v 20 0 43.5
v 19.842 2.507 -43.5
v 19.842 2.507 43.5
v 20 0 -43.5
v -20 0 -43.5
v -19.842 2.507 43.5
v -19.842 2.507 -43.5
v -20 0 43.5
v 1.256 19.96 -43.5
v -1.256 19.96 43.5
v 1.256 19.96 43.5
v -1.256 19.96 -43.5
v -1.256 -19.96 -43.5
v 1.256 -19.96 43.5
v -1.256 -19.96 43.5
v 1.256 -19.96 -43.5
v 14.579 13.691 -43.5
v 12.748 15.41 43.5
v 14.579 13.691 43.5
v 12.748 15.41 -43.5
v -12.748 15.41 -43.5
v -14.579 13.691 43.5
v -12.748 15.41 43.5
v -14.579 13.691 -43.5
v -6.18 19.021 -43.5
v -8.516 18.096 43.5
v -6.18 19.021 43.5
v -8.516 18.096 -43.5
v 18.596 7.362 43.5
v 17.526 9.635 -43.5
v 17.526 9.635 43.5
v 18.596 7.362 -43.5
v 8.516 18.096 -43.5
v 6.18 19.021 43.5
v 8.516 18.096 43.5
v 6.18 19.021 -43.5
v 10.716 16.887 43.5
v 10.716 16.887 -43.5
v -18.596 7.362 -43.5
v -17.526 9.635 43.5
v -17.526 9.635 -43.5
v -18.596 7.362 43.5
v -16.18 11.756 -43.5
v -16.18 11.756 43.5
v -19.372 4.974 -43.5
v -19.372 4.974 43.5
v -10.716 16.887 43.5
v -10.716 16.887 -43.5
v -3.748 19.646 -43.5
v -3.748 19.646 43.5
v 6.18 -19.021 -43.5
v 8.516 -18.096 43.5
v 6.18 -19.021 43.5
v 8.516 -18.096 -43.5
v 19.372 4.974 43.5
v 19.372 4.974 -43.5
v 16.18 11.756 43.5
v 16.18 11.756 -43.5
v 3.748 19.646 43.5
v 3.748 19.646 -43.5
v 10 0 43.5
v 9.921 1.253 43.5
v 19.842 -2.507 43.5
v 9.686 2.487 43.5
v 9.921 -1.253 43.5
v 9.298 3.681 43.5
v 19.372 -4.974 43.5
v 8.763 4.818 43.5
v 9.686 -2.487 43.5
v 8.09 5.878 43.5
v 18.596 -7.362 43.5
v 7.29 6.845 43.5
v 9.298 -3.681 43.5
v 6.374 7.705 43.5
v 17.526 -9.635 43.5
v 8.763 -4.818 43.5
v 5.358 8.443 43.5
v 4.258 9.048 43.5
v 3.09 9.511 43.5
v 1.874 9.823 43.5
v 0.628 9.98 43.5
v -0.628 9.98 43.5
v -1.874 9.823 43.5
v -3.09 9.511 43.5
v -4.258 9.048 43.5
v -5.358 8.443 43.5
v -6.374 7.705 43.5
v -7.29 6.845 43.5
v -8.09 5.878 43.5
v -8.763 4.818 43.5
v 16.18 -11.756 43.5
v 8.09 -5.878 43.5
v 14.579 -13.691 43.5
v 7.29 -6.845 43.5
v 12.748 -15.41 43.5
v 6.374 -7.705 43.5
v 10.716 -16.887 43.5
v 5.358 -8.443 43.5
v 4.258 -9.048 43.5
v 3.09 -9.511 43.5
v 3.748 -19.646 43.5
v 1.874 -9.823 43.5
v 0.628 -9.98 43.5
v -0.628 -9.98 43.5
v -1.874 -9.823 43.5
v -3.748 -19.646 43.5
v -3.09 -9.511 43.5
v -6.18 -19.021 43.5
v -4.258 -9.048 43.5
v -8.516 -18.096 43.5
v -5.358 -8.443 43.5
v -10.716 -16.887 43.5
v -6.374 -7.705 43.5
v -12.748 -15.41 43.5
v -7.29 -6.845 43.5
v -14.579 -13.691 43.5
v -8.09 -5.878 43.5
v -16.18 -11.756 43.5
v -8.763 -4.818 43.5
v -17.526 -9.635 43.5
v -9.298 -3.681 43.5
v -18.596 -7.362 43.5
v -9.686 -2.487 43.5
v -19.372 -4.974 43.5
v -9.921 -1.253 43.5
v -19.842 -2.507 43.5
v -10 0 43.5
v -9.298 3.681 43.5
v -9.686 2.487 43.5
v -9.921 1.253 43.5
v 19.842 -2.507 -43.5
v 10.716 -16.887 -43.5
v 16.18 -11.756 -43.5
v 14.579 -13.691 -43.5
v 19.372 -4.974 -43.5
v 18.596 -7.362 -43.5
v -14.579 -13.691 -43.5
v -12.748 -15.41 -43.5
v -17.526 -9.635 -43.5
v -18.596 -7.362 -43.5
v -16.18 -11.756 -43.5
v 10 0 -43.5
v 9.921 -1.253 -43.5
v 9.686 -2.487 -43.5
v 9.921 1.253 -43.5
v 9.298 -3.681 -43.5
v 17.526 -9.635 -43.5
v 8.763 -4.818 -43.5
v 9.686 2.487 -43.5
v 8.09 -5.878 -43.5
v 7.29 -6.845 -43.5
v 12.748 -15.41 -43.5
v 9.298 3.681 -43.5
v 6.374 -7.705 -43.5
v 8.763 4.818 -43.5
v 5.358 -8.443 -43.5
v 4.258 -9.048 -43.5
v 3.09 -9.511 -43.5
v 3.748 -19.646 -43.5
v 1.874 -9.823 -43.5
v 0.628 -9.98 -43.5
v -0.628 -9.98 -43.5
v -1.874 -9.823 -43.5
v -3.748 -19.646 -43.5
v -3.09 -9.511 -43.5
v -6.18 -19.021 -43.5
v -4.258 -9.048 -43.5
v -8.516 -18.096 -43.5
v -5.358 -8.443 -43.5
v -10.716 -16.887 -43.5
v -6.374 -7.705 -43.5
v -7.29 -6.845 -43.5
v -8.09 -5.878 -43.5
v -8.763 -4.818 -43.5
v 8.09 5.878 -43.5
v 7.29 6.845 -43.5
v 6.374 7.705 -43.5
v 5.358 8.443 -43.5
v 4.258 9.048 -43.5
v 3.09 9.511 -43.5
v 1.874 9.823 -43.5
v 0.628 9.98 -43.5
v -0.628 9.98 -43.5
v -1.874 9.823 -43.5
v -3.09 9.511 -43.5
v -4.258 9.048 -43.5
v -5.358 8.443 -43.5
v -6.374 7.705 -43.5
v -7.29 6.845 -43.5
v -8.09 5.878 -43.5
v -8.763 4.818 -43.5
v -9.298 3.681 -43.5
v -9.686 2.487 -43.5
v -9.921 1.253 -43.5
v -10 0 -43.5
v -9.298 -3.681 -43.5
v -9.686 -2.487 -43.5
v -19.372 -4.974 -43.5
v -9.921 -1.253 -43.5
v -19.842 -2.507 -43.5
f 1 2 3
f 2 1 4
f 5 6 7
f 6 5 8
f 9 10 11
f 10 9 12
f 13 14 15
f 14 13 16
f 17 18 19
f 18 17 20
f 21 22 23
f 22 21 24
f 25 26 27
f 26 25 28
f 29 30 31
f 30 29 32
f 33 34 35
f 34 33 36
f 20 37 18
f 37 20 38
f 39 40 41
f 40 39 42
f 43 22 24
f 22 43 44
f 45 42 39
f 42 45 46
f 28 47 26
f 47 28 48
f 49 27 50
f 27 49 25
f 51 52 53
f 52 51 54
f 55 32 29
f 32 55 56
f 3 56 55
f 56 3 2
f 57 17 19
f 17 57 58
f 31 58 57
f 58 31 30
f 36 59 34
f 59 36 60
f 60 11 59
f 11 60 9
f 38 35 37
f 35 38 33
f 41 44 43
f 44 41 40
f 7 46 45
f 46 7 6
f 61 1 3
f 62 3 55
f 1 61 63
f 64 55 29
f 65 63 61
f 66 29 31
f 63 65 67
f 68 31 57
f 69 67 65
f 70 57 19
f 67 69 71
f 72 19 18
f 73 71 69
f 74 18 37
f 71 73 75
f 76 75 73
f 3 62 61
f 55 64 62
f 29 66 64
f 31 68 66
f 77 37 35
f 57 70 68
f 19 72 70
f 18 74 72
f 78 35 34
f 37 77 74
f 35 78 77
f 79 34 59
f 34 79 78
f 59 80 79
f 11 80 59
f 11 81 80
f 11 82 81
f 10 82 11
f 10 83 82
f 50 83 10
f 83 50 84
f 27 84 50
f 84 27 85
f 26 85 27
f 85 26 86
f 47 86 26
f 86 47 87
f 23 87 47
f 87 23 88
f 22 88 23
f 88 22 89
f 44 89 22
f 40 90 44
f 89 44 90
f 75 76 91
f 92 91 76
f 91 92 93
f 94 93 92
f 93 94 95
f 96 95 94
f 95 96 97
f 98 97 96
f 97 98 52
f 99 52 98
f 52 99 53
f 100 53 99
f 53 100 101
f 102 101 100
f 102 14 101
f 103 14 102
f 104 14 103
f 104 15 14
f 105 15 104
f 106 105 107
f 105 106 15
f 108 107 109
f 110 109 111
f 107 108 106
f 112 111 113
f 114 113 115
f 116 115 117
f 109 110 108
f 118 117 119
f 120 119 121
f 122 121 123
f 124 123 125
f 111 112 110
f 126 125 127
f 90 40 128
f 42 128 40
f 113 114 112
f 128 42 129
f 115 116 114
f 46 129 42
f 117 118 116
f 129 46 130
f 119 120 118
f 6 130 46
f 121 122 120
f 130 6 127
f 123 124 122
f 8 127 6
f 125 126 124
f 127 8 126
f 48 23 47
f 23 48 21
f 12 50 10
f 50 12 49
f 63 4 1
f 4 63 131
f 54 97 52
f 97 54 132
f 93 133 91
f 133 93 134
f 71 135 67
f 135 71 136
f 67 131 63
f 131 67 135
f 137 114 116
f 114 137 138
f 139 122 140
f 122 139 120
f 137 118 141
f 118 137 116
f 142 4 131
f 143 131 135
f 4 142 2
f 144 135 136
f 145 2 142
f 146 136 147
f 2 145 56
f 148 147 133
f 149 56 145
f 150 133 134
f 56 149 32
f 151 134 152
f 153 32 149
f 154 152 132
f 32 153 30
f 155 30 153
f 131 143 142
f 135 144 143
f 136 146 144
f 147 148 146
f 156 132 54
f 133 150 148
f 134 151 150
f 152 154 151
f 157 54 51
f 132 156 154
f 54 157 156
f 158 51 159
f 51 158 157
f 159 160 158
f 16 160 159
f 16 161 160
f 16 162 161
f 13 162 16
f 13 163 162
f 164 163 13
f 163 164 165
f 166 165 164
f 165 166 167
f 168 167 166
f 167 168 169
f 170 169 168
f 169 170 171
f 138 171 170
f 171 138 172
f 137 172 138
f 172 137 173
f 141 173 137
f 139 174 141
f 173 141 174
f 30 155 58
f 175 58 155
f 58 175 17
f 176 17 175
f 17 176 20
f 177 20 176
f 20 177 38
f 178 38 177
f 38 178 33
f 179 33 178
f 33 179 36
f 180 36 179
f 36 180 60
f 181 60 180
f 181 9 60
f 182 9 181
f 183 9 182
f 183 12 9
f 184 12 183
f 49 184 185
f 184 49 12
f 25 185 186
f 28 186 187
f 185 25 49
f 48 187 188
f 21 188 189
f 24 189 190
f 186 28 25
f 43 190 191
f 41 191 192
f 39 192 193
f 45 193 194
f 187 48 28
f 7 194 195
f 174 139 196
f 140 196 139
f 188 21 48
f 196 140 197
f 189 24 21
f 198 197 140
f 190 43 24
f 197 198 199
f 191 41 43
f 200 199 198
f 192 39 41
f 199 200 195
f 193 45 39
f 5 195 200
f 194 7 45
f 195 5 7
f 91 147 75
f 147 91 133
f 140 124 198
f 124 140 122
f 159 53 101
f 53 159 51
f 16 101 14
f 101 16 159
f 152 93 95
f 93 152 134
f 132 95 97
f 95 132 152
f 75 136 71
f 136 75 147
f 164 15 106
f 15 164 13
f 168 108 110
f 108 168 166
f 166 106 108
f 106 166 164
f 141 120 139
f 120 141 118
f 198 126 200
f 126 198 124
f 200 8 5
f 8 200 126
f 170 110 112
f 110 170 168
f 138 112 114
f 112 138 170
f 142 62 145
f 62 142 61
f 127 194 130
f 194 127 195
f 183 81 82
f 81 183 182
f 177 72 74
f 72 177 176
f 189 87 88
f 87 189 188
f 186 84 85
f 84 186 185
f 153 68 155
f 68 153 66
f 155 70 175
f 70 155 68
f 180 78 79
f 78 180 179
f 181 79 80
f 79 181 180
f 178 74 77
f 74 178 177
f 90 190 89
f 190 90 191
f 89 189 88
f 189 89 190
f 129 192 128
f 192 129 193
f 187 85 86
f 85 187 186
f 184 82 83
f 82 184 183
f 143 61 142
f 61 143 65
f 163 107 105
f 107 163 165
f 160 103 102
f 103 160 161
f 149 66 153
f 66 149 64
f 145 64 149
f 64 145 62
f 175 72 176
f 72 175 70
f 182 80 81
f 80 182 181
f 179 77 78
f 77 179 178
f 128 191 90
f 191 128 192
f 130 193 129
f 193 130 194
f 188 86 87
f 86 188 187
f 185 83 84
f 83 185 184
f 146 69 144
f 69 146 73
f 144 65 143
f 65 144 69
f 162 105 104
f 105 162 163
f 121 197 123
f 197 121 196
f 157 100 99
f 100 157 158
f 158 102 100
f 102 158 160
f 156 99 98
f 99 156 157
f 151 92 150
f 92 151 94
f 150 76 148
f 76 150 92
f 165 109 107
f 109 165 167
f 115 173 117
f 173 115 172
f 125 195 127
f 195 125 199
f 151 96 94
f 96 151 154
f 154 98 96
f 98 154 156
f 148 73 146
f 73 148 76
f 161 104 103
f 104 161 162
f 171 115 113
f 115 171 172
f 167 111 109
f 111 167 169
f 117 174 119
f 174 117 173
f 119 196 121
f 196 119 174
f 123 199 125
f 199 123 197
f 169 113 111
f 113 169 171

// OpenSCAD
$fn = 50;


difference() {
	union() {
		translate(v = [0, 0, -43.5000000000]) {
			cylinder(h = 87, r = 20.0000000000);
		}
	}
	union() {
		translate(v = [0, 0, -100.0000000000]) {
			cylinder(h = 200, r = 10);
		}
	}
}
